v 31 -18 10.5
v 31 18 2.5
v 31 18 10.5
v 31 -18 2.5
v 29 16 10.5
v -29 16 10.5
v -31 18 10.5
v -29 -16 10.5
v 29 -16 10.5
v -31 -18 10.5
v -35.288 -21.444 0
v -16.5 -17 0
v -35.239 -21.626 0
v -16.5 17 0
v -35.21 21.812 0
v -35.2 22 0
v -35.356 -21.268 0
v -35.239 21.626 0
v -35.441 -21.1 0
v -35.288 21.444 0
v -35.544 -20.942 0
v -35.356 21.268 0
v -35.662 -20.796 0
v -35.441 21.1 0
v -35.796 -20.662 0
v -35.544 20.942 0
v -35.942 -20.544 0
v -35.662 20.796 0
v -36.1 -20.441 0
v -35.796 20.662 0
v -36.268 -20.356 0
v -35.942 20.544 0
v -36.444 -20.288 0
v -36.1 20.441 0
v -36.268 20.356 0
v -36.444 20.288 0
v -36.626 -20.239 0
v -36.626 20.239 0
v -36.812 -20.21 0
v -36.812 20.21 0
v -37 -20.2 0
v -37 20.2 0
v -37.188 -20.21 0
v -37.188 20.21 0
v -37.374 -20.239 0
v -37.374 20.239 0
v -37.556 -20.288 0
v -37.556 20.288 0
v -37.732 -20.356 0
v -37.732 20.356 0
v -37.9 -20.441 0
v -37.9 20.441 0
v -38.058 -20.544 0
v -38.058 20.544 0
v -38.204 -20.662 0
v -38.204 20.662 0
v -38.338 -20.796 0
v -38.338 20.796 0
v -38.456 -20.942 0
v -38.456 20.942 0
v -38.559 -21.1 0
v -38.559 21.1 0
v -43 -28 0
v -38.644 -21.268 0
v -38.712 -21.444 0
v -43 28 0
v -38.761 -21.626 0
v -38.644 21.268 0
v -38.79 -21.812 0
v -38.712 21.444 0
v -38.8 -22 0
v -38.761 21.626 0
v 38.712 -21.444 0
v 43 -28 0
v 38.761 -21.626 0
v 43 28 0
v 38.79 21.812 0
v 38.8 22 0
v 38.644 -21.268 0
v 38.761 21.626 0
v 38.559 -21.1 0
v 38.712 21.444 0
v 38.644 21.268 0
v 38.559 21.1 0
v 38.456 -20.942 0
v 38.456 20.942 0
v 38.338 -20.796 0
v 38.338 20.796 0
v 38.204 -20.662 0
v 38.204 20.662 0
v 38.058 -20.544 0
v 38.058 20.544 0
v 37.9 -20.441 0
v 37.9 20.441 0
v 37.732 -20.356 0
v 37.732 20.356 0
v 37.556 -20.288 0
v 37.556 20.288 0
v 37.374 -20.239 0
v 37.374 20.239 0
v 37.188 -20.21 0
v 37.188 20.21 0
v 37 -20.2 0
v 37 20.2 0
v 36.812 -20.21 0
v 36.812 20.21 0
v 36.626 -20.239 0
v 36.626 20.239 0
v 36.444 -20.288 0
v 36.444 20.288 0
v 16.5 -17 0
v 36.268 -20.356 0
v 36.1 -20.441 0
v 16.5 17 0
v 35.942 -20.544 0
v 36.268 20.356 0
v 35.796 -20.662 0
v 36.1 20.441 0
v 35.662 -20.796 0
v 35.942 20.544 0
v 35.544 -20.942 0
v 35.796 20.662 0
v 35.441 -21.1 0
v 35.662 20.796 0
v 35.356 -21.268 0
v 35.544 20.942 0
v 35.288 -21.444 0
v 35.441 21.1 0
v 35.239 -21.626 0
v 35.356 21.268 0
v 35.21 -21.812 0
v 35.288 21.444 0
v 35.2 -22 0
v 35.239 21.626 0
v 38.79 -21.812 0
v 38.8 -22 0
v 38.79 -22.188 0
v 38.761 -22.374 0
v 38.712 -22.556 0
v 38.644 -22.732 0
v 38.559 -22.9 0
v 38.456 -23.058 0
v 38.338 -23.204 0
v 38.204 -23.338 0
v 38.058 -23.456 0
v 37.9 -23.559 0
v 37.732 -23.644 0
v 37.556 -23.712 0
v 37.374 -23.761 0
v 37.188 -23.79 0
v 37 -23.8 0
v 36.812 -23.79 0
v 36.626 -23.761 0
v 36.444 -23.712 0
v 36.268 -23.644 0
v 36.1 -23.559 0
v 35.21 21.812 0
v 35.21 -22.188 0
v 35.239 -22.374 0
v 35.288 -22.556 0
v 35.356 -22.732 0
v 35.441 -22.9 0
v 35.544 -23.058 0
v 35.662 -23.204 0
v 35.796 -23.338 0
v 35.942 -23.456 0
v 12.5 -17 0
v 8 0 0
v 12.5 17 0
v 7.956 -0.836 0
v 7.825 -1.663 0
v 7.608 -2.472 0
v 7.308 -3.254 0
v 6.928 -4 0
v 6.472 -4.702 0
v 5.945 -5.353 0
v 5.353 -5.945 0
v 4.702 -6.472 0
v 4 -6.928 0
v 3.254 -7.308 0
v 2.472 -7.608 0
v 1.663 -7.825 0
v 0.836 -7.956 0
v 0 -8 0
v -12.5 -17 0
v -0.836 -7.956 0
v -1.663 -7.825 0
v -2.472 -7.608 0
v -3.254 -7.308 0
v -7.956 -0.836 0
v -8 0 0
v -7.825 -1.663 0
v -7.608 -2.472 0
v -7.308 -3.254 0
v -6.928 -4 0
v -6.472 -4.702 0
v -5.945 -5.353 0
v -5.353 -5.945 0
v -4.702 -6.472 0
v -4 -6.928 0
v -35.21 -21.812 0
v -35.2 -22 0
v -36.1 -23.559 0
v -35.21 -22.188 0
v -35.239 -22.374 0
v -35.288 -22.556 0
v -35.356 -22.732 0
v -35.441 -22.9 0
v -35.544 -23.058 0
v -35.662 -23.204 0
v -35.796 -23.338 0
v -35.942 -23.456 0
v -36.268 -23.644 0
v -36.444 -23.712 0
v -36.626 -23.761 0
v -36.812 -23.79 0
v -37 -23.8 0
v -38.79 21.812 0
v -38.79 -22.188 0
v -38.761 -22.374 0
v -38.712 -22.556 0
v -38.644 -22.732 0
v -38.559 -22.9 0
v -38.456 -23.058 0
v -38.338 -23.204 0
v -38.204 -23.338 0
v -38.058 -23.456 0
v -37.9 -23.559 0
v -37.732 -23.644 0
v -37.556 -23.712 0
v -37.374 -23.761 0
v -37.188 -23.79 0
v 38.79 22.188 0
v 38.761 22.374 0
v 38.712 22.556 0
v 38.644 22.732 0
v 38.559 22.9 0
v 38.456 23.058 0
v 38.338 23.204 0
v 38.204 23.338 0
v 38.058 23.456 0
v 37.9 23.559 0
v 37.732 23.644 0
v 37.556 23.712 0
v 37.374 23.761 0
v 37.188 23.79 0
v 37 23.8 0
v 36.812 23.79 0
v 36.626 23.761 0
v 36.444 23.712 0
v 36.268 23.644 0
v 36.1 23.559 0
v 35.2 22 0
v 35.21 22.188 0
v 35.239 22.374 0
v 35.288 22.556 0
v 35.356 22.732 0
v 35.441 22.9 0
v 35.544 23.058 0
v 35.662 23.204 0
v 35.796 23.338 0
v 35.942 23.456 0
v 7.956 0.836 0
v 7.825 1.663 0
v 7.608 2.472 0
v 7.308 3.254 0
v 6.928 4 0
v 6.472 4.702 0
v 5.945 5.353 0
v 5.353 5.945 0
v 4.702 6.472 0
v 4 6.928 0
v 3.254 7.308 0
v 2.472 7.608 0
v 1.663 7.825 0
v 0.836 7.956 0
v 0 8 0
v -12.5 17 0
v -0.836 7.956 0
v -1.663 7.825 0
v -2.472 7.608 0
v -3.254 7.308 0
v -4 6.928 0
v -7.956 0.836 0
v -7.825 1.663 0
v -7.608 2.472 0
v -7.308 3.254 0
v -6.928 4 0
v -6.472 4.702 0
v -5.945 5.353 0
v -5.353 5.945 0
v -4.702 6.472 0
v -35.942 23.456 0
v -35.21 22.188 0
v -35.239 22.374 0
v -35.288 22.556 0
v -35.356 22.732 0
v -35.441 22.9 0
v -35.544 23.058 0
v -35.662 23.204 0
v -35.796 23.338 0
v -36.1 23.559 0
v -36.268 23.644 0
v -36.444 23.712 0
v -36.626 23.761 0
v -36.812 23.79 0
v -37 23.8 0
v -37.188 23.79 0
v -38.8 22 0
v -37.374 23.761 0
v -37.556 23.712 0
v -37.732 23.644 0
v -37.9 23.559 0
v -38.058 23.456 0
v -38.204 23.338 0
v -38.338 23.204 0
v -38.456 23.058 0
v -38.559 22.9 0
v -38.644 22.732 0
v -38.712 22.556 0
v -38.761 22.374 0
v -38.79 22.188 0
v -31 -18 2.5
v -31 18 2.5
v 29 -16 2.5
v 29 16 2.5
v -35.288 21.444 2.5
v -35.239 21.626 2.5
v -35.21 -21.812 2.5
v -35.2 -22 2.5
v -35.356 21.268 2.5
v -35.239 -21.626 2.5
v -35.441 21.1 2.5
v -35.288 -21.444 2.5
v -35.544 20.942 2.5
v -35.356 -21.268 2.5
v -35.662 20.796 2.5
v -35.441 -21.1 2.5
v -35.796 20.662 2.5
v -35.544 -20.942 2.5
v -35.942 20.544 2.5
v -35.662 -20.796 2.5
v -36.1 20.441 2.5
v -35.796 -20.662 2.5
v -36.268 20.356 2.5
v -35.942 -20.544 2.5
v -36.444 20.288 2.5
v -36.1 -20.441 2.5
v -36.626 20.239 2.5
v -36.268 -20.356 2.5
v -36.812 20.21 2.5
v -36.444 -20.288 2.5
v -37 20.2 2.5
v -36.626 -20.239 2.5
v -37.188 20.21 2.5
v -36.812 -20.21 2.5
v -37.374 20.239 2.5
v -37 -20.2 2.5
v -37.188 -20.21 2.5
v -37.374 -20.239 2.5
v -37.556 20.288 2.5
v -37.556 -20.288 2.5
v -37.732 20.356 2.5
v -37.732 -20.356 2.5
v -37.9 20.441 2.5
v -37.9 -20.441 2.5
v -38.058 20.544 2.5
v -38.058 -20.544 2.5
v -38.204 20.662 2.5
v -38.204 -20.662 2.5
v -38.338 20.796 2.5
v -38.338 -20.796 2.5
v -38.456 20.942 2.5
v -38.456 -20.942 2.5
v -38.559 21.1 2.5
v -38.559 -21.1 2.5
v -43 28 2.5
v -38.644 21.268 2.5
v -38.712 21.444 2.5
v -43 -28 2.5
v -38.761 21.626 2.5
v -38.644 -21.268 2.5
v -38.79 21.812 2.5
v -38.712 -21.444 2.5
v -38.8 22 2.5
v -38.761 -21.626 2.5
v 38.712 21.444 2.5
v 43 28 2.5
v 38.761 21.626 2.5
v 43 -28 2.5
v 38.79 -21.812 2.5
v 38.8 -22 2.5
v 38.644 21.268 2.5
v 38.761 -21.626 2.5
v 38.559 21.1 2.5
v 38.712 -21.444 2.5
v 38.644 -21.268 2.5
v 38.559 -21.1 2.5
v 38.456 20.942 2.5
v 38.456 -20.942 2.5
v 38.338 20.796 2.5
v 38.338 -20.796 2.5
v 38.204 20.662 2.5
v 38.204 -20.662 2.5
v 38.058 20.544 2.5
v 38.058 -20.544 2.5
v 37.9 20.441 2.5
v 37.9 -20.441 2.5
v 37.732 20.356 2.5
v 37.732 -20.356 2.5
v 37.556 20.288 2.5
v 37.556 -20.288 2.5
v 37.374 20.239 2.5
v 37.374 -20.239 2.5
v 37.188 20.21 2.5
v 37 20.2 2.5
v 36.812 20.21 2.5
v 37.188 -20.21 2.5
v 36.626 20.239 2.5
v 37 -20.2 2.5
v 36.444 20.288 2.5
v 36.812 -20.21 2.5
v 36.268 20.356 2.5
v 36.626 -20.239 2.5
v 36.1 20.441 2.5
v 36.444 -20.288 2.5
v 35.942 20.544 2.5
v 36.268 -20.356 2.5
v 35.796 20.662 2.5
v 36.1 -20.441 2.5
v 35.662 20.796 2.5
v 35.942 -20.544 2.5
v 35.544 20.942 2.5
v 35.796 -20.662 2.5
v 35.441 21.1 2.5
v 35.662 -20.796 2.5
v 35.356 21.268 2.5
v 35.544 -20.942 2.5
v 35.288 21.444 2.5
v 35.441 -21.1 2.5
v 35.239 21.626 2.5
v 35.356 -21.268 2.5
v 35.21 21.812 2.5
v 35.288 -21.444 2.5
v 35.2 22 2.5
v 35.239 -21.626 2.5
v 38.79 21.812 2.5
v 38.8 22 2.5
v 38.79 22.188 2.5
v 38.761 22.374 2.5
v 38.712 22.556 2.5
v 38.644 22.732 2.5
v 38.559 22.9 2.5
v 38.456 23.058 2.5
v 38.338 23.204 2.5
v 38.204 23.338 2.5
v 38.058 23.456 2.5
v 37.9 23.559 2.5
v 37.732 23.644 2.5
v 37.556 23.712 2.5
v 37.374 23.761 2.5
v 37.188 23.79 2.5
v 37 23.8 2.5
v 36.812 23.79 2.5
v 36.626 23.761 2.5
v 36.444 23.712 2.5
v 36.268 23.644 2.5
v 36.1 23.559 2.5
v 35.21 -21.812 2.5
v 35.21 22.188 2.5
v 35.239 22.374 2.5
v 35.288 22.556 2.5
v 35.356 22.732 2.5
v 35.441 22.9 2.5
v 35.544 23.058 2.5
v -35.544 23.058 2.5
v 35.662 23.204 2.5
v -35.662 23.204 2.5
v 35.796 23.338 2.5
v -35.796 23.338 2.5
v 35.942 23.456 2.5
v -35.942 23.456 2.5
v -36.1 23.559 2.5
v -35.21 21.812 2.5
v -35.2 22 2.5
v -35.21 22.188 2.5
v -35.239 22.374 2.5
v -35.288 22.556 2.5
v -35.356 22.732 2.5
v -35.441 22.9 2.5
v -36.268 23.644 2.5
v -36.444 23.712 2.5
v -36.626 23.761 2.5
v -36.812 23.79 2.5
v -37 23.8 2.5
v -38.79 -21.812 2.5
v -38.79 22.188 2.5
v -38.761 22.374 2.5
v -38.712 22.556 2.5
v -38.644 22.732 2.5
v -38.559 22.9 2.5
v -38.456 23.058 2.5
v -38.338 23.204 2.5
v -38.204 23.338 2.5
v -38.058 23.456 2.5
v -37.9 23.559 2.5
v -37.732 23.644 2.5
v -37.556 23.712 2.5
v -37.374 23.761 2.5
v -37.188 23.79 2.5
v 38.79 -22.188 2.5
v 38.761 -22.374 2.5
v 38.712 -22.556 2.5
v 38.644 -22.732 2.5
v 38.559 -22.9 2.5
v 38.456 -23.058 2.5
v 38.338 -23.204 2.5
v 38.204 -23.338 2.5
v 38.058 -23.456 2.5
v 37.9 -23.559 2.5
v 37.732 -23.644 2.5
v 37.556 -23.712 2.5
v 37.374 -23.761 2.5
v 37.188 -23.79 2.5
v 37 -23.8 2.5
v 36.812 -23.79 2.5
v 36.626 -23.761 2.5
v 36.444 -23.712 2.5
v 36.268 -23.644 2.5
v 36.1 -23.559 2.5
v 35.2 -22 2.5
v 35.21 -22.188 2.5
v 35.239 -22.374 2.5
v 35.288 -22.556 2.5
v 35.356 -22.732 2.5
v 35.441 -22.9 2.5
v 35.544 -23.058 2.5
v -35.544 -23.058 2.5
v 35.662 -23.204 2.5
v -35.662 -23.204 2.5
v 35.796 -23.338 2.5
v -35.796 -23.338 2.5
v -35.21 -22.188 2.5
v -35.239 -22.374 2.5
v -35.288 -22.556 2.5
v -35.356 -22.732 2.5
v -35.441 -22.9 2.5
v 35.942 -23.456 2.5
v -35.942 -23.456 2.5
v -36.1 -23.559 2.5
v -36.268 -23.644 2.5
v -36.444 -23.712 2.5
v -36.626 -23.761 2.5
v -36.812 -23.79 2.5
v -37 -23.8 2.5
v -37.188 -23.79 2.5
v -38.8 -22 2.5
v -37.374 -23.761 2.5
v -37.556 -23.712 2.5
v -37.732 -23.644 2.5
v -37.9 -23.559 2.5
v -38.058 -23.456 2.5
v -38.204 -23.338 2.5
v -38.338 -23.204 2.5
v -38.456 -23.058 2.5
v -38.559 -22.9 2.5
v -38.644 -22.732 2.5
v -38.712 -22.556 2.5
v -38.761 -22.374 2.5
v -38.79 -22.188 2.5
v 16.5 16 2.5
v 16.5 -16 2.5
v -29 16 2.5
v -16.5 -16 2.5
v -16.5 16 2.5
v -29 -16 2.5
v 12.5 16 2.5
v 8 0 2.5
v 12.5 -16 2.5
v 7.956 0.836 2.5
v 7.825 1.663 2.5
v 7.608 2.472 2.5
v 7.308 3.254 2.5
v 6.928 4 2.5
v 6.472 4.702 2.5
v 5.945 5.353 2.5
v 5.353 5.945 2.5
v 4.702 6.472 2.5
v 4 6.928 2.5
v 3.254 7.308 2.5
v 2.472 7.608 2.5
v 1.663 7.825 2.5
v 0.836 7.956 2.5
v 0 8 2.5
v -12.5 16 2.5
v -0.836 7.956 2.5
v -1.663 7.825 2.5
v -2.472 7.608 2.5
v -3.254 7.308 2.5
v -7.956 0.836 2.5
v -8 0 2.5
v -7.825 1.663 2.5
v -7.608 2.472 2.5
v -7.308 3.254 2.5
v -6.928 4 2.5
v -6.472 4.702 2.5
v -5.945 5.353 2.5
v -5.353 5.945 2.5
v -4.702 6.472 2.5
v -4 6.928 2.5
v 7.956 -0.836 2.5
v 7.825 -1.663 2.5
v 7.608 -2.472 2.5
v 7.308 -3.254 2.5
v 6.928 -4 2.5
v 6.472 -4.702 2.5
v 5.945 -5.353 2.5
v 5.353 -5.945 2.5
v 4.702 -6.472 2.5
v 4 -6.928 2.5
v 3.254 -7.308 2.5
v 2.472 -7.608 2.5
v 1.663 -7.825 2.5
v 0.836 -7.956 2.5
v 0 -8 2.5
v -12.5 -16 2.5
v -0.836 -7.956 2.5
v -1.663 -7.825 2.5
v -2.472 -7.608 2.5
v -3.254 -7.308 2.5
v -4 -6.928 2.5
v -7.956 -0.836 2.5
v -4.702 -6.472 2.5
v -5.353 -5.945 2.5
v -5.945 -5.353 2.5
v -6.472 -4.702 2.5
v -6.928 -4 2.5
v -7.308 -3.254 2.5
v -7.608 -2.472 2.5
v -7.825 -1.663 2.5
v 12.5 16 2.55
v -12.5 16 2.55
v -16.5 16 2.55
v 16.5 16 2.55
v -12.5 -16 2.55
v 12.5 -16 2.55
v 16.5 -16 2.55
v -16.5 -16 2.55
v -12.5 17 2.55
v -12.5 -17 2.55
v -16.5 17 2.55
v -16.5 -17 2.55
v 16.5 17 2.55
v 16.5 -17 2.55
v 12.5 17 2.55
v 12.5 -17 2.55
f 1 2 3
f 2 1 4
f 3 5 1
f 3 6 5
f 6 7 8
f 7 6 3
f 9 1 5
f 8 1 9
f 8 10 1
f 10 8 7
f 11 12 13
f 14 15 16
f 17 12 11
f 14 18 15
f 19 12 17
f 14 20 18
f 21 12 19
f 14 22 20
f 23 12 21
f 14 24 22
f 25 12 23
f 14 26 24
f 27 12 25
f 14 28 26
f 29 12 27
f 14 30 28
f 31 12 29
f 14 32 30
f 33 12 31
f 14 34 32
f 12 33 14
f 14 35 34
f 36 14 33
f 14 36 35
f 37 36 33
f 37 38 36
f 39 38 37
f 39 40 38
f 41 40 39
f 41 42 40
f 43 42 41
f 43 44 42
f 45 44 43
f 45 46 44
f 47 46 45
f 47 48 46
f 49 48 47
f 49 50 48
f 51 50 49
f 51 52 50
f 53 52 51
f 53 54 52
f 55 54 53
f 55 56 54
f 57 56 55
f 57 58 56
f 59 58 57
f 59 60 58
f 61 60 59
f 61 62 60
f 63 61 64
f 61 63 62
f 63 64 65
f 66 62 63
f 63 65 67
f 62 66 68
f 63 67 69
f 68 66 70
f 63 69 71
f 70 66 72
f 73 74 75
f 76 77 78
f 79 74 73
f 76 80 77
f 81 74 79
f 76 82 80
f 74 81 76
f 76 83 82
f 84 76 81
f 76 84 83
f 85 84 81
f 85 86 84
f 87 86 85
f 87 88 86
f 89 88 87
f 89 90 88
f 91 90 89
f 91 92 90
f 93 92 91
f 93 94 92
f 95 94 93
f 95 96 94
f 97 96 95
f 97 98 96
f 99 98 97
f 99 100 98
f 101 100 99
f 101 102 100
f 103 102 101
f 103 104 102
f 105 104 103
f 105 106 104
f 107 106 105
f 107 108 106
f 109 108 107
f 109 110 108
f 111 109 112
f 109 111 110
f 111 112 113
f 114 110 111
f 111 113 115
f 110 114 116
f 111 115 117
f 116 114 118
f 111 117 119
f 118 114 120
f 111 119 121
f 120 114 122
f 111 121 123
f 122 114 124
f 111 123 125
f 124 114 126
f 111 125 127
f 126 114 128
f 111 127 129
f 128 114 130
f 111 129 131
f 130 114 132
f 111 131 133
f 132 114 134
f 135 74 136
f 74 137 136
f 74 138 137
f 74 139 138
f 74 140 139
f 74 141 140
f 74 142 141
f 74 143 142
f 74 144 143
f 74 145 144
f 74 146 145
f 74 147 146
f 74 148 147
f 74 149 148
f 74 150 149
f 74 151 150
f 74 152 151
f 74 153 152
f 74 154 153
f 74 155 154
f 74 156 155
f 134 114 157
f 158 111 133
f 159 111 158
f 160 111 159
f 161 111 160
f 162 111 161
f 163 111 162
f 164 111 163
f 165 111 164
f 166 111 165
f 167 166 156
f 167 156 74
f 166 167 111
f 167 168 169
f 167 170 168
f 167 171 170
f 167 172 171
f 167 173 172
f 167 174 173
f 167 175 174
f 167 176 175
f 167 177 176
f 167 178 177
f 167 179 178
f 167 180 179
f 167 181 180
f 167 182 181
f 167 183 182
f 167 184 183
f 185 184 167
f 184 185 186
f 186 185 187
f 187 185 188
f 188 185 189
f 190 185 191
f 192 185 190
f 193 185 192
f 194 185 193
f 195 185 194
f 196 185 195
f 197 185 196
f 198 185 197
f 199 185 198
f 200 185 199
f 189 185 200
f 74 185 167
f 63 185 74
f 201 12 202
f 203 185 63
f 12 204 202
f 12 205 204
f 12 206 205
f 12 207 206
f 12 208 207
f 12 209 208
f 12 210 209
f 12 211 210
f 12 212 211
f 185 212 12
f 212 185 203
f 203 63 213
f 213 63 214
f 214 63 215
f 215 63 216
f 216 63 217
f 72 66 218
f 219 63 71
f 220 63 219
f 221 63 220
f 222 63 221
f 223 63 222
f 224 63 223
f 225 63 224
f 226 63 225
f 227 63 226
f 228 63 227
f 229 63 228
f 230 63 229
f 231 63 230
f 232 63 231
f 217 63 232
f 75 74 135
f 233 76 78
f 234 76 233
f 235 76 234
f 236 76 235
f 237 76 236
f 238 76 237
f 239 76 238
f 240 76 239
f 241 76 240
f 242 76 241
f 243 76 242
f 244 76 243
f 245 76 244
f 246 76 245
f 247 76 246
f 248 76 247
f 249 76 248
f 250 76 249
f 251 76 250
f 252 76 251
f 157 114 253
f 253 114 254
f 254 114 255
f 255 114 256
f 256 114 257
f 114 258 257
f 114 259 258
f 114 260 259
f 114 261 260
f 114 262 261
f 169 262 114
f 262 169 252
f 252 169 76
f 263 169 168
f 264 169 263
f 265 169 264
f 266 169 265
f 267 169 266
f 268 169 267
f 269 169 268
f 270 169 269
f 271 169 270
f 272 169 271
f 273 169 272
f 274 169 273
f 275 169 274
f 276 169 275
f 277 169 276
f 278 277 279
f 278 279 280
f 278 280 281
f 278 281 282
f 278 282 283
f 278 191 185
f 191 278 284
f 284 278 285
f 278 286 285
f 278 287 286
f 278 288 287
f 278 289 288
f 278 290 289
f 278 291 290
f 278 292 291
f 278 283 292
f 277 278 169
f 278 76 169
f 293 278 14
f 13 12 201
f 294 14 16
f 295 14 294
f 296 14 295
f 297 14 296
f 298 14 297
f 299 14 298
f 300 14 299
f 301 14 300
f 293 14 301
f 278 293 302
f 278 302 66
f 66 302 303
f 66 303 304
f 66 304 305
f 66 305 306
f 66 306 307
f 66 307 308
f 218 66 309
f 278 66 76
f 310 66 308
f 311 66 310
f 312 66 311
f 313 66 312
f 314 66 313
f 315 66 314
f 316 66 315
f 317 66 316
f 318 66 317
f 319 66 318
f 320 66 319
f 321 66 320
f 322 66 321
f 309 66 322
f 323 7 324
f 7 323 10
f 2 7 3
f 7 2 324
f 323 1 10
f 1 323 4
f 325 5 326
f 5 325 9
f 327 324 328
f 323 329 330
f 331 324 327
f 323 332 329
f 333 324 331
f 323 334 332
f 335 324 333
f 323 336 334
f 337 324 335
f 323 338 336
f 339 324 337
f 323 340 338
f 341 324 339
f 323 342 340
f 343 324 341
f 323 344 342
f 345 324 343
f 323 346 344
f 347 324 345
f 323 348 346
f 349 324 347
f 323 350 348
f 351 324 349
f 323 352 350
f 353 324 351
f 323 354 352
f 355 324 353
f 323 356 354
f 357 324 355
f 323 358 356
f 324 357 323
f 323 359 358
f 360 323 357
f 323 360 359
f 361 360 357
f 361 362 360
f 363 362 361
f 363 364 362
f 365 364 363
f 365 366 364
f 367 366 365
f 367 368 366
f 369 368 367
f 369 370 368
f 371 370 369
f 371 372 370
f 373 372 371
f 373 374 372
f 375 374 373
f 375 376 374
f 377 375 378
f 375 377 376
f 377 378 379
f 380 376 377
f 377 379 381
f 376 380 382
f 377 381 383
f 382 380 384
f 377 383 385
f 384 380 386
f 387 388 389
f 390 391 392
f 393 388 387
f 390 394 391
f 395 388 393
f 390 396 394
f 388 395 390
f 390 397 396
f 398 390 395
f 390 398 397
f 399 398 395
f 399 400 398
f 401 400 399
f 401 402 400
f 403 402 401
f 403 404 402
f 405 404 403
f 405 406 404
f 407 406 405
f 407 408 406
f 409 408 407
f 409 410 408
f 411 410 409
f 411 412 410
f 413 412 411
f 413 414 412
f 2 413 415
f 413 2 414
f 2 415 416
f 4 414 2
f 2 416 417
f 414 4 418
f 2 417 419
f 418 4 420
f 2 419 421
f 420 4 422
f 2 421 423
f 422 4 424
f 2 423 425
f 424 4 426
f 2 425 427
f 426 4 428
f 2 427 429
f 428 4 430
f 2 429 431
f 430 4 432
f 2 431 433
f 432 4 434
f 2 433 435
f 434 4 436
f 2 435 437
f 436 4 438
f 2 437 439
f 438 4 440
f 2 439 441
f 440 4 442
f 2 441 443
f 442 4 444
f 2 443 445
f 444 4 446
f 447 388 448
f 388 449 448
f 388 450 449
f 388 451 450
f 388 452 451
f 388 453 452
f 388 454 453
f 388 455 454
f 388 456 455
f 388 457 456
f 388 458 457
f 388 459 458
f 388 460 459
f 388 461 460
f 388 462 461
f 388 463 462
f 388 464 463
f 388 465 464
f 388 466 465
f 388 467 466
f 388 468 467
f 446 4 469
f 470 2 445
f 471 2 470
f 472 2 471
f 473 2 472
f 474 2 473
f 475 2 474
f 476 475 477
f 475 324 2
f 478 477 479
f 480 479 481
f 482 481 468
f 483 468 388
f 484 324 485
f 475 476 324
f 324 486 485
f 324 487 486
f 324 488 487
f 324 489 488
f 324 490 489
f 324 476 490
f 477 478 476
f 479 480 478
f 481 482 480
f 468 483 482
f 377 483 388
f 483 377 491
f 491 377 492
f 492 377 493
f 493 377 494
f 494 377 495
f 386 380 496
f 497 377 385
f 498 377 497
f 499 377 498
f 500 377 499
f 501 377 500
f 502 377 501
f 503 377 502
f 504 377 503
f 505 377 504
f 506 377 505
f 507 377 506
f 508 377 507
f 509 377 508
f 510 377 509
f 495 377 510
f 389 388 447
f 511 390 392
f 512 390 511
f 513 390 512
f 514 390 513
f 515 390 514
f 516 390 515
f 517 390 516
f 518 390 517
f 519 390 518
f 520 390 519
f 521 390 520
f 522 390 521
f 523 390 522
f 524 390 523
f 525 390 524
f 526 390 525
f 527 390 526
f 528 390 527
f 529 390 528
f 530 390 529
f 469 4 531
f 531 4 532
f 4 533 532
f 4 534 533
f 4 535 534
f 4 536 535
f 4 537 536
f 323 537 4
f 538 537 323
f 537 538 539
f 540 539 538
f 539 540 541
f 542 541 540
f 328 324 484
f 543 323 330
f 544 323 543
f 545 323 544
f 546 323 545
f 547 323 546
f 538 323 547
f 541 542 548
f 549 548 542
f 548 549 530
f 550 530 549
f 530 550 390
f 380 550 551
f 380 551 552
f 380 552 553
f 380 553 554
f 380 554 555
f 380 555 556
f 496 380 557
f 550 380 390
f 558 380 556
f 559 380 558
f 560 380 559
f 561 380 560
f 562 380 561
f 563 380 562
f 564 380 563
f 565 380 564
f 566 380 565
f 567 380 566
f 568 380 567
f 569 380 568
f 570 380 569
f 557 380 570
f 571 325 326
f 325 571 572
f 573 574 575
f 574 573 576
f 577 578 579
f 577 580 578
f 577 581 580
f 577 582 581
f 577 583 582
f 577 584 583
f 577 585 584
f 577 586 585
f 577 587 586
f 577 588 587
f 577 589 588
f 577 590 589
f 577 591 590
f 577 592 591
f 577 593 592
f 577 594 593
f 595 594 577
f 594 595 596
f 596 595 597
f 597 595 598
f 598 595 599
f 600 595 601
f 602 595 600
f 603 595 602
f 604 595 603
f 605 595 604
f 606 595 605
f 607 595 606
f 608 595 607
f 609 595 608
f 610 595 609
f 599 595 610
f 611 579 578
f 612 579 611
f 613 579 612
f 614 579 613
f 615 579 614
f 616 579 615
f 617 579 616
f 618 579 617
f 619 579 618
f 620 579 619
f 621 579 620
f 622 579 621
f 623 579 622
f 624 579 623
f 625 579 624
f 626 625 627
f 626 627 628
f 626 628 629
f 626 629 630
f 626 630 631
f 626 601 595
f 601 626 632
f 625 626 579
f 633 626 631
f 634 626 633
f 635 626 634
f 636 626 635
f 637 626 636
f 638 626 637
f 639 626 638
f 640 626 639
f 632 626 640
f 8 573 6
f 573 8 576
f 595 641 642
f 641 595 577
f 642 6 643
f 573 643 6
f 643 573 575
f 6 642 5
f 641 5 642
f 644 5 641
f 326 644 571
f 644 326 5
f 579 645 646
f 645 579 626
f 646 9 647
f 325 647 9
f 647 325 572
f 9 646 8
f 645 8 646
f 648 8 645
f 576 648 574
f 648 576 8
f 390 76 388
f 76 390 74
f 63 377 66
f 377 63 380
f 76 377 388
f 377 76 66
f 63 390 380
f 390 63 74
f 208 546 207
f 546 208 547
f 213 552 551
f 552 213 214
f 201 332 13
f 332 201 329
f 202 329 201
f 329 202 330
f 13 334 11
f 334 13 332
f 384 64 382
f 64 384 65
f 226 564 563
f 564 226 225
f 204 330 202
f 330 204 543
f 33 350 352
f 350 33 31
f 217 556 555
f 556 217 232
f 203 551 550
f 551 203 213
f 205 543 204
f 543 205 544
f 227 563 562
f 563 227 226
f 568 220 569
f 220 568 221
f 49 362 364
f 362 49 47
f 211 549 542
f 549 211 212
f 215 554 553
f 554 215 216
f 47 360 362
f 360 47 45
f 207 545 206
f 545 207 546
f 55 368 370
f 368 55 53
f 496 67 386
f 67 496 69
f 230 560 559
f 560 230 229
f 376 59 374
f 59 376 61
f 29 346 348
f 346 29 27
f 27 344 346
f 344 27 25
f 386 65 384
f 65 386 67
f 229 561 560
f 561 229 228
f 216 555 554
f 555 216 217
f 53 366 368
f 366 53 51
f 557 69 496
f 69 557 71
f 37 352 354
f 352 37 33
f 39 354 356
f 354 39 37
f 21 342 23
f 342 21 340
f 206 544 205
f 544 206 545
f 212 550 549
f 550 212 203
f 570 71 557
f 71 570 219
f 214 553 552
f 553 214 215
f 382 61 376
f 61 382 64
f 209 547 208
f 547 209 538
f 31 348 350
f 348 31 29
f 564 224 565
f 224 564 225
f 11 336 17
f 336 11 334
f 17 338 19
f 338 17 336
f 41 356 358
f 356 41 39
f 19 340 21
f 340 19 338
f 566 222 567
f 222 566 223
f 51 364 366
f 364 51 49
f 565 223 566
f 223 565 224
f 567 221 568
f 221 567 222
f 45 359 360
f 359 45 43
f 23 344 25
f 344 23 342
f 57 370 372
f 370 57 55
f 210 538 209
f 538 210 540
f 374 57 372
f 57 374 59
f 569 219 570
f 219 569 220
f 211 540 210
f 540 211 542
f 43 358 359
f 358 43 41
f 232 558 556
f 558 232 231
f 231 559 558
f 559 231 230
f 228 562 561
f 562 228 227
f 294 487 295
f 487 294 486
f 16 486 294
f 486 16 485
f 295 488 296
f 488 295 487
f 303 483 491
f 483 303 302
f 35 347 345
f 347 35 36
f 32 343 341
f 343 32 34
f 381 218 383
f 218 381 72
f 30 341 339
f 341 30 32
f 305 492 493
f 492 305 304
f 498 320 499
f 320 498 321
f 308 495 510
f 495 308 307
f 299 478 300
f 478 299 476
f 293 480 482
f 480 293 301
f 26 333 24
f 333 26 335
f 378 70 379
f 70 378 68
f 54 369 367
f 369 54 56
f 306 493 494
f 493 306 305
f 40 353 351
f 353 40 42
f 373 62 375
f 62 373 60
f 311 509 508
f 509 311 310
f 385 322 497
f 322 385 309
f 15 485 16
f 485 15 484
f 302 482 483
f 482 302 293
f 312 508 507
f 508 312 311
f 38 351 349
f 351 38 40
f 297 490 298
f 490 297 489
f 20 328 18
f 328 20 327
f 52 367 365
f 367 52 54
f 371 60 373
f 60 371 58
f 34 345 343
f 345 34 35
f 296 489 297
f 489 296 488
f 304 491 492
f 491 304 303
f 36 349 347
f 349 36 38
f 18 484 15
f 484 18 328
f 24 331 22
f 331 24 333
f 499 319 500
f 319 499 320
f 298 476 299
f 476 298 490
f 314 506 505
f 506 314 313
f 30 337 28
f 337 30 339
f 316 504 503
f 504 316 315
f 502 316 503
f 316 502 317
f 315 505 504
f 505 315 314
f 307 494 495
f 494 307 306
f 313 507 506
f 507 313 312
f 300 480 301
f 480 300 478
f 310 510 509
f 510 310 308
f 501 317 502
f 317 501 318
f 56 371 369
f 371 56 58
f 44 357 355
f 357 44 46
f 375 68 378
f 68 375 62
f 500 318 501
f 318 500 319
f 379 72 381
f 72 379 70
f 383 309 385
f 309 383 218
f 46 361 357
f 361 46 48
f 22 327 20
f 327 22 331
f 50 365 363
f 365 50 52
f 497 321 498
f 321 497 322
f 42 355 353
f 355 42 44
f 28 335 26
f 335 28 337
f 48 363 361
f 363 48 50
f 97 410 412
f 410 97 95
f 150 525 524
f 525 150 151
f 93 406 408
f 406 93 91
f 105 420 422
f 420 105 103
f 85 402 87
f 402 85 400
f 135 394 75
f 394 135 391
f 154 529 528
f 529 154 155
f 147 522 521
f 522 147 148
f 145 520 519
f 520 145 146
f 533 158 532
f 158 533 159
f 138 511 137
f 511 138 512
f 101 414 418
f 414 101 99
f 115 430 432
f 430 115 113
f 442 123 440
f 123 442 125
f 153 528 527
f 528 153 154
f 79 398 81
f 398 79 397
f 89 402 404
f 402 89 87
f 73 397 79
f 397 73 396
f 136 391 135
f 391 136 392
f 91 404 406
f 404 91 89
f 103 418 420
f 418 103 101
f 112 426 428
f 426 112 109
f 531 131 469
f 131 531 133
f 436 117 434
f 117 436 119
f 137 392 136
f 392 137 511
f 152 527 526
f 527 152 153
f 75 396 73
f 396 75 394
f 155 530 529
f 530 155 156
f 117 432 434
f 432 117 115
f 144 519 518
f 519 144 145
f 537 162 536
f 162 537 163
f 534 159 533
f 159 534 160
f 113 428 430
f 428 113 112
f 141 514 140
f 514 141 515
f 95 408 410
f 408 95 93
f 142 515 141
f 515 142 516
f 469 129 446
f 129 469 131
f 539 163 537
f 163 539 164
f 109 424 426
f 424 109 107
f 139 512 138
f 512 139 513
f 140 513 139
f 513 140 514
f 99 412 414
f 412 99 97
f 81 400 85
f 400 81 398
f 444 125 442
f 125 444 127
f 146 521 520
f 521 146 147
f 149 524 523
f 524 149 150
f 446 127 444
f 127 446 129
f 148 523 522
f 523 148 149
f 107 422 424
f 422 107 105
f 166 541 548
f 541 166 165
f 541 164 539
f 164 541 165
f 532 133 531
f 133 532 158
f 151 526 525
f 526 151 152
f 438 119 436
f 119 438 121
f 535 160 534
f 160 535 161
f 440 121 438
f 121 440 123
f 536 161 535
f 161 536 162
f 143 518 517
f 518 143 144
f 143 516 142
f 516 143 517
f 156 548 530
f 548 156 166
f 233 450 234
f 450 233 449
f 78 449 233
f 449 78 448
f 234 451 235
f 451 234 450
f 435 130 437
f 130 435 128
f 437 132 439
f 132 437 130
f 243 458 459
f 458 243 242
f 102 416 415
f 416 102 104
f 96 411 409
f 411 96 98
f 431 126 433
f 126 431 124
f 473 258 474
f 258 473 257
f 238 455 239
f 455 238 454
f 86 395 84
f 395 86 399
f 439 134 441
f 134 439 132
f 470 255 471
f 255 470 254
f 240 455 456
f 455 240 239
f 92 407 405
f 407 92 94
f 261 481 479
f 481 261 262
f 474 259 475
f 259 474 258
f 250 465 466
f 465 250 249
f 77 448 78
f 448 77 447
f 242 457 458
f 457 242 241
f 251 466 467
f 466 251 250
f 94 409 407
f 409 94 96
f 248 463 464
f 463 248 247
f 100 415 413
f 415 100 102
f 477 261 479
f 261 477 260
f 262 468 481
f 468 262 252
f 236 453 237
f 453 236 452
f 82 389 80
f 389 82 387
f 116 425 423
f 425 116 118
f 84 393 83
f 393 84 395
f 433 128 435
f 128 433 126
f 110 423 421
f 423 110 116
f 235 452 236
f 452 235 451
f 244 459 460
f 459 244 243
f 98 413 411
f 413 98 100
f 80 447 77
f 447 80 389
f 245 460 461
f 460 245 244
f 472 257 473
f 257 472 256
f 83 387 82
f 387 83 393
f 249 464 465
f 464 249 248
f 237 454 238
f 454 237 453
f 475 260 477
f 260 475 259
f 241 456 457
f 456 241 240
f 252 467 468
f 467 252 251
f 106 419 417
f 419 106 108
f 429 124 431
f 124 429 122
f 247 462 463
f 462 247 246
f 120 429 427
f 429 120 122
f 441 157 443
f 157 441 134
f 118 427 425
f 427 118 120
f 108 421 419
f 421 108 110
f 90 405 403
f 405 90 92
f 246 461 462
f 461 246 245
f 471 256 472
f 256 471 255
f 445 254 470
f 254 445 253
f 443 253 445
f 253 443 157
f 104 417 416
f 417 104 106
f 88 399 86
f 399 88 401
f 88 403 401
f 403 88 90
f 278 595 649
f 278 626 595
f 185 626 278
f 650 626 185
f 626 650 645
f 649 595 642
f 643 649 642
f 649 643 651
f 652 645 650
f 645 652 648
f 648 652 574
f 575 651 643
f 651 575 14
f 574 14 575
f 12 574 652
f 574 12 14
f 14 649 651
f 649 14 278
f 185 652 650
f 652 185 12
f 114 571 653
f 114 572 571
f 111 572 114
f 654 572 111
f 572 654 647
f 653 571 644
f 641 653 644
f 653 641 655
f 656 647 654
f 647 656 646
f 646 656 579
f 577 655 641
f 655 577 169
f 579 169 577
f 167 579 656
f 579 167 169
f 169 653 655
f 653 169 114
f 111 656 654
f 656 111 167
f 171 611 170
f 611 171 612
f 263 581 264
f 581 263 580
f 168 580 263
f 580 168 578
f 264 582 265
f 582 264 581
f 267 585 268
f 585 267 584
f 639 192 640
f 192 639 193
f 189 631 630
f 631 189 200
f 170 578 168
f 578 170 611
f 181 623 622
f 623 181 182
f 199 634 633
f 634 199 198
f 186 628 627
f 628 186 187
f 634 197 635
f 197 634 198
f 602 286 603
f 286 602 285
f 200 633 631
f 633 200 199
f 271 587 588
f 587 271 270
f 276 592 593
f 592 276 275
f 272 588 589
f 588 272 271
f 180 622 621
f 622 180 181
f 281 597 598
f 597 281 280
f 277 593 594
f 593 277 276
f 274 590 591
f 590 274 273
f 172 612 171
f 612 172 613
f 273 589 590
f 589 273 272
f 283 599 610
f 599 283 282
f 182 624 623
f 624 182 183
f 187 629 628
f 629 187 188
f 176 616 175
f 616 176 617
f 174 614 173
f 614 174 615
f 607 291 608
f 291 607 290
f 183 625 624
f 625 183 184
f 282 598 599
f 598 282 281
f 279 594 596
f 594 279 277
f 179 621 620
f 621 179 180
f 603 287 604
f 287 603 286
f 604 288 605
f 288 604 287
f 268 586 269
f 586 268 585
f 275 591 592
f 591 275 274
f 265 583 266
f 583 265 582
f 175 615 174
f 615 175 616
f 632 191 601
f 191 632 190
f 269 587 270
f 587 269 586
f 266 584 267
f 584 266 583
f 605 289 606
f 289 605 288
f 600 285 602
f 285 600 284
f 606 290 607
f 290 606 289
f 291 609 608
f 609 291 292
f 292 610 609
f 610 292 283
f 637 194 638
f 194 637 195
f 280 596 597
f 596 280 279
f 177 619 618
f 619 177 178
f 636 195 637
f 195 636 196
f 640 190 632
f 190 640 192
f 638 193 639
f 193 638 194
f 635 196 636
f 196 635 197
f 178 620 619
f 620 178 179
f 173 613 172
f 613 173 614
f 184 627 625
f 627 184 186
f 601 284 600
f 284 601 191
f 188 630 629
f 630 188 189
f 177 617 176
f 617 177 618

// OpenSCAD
// file: common.scad
// ============================================================================
// common.scad - shared parameters and helpers for EEELunarRover printed parts
// ----------------------------------------------------------------------------
// Units: millimetres. Every dimension below is taken either from the EEEBug
// V3.1 laser-cut CAD (mech/chassis.svg, measured) or from a verified component
// datasheet (see mech/rover_layout.md section "Verified part dimensions").
//
// Printer envelope: 200 x 200 x 200 mm PLA. We deliberately keep every part
// under 180 mm in its longest axis (lab guidance: do not use the full bed).
// ============================================================================

$fn = 60;
eps = 0.05;

// ---------- Fasteners (verified: M3 nylon hex A/F measured 5.4-5.6 mm) -------
M3_CLEAR  = 3.4;   // clearance for an M3 screw / standoff thread
M3_TAP    = 2.9;   // pilot for self-tapping an M3 into PLA
M3_HEAD   = 6.2;   // M3 pan-head clearance diameter
M3_HEXAF  = 5.8;   // nylon M3 hex standoff/nut across-flats + fit clearance
WALL      = 2.0;   // default wall (5 perimeters @ 0.4 mm nozzle)

// ---------- Chassis: EEEBug V3.1 (from mech/chassis.svg) ---------------------
CH_W   = 95.0;     // chassis width  (X)
CH_L   = 205.0;    // chassis length (Y)
CH_T   = 3.0;      // 3 mm acrylic
AXLE_Y = 105.0;    // drive-wheel centreline (waist pinches 95->85 mm, y 96-114)

// Central M3 anchor rectangle straddling the axle (chassis coords, Ø3.1 holes):
//   (10.5, 95) (84.5, 95) (10.5, 129) (84.5, 129)  ->  74 mm (X) x 34 mm (Y)
ANCHOR_PITCH_X = 74.0;
ANCHOR_PITCH_Y = 34.0;

// Standard modular interface: every small sensor mount bolts on with
// 2x M3 at this pitch.
DOCK_PITCH = 12.0;

// ---------- Verified component dimensions ------------------------------------
// OSRAM SFH 300 phototransistor: 5 mm T-1 3/4 radial, body Ø5.1, ~8.6 tall,
//   leads 2.54 mm pitch.
SFH300_DIA = 5.1;
// Murata MA40S4R 40 kHz ultrasonic Rx: body Ø9.9, 7.1 tall, leads 5.0 mm pitch.
US_DIA   = 9.9;
US_H     = 7.1;
US_PITCH = 5.0;
// Honeywell SS49E linear Hall: flat package 4.1 (W) x 1.7 (thk) x 3.0 (H),
//   3 leads at 1.27 mm pitch.
HALL_W = 4.1;
HALL_T = 1.7;
HALL_H = 3.0;
// Roth perfboards (FR4, 1.5 mm): RE015 = 40.5 x 40.0 ; RE016 = 68.58 x 67.94.
PB_SMALL = [40.5, 40.0, 1.5];
PB_LARGE = [68.58, 67.94, 1.5];

// ---------- helpers ----------------------------------------------------------
module m3_clear(h = 30) { translate([0,0,-eps]) cylinder(d = M3_CLEAR, h = h + 2*eps); }
module m3_tap(h = 30)   { translate([0,0,-eps]) cylinder(d = M3_TAP,   h = h + 2*eps); }
module hexAF(af, h)     { cylinder(r = af/sqrt(3), h = h, $fn = 6); }

// 2x M3 clearance holes at DOCK_PITCH, centred on the origin along X.
module dock_holes(h = 30) {
    for (s = [-1, 1]) translate([s*DOCK_PITCH/2, 0, 0]) m3_clear(h);
}
// main file
// ============================================================================
// battery_tray.scad - 4xAA holder cradle, mounted over the drive axle
// ----------------------------------------------------------------------------
// Bolts to all four central anchor holes (74 x 34 mm rectangle) on M3 nylon
// standoffs, raising the battery pack above the existing Metro / motor-driver
// PCB. Keeping the heaviest item (~100 g of AA cells) directly over the axle
// (y = 105 mm) balances the centre-pivot rover so both end skids stay light.
//
// The AA holder drops into the walled pocket and is held by a zip-tie through
// the two slots (no glue - lab rules forbid ordering adhesives, and a zip-tie
// lets you swap cells). Default pocket fits a 2x2 AA holder; measure yours and
// override bat=[L,W].
//
// Bolts to the chassis y = 85 and y = 129 hole pairs (the boom takes y = 95).
// Their midpoint y = 107 sits over the drive axle (105). Holes are Ø3.6 to
// absorb the ~1 mm pitch / 0.5 mm x variation between those two hole rows.
//
// Print FLAT, no supports. Footprint ~86 x 56 mm.
// ============================================================================

include <common.scad>

bat       = [58, 32];   // [L, W] of your 4xAA holder footprint - MEASURE and adjust
WALL_H    = 8;          // retaining wall height
FLOOR_T   = 2.5;
BAT_Y_PITCH = 44;       // chassis y = 85 <-> 129
BAT_HOLE  = 3.6;        // oversized clearance for the inter-row tolerance

module battery_tray() {
    L = bat[0] + 2*WALL; W = bat[1] + 2*WALL;
    // floor must reach the 74 x 44 anchor rectangle + margin
    FL = max(L, ANCHOR_PITCH_X + 12);
    FW = max(W, BAT_Y_PITCH + 12);
    difference() {
        union() {
            translate([-FL/2, -FW/2, 0]) cube([FL, FW, FLOOR_T]);          // floor
            // pocket walls
            difference() {
                translate([-L/2, -W/2, 0]) cube([L, W, FLOOR_T + WALL_H]);
                translate([-bat[0]/2, -bat[1]/2, FLOOR_T])
                    cube([bat[0], bat[1], WALL_H + eps]);
            }
        }
        // 4 anchor mounting holes (74 x 44)
        for (sx = [-1,1], sy = [-1,1])
            translate([sx*ANCHOR_PITCH_X/2, sy*BAT_Y_PITCH/2, -eps])
                cylinder(d = BAT_HOLE, h = FLOOR_T + 2*eps);
        // floor lightening + wiring pass-through
        translate([0,0,-eps]) cylinder(d = 16, h = FLOOR_T + 2*eps);
        // zip-tie slots across the pocket floor
        for (sx = [-1,1]) translate([sx*bat[0]/4, 0, -eps])
            translate([-2, -bat[1]/2 - 1, 0]) cube([4, bat[1] + 2, FLOOR_T + 2*eps]);
    }
}

battery_tray();
